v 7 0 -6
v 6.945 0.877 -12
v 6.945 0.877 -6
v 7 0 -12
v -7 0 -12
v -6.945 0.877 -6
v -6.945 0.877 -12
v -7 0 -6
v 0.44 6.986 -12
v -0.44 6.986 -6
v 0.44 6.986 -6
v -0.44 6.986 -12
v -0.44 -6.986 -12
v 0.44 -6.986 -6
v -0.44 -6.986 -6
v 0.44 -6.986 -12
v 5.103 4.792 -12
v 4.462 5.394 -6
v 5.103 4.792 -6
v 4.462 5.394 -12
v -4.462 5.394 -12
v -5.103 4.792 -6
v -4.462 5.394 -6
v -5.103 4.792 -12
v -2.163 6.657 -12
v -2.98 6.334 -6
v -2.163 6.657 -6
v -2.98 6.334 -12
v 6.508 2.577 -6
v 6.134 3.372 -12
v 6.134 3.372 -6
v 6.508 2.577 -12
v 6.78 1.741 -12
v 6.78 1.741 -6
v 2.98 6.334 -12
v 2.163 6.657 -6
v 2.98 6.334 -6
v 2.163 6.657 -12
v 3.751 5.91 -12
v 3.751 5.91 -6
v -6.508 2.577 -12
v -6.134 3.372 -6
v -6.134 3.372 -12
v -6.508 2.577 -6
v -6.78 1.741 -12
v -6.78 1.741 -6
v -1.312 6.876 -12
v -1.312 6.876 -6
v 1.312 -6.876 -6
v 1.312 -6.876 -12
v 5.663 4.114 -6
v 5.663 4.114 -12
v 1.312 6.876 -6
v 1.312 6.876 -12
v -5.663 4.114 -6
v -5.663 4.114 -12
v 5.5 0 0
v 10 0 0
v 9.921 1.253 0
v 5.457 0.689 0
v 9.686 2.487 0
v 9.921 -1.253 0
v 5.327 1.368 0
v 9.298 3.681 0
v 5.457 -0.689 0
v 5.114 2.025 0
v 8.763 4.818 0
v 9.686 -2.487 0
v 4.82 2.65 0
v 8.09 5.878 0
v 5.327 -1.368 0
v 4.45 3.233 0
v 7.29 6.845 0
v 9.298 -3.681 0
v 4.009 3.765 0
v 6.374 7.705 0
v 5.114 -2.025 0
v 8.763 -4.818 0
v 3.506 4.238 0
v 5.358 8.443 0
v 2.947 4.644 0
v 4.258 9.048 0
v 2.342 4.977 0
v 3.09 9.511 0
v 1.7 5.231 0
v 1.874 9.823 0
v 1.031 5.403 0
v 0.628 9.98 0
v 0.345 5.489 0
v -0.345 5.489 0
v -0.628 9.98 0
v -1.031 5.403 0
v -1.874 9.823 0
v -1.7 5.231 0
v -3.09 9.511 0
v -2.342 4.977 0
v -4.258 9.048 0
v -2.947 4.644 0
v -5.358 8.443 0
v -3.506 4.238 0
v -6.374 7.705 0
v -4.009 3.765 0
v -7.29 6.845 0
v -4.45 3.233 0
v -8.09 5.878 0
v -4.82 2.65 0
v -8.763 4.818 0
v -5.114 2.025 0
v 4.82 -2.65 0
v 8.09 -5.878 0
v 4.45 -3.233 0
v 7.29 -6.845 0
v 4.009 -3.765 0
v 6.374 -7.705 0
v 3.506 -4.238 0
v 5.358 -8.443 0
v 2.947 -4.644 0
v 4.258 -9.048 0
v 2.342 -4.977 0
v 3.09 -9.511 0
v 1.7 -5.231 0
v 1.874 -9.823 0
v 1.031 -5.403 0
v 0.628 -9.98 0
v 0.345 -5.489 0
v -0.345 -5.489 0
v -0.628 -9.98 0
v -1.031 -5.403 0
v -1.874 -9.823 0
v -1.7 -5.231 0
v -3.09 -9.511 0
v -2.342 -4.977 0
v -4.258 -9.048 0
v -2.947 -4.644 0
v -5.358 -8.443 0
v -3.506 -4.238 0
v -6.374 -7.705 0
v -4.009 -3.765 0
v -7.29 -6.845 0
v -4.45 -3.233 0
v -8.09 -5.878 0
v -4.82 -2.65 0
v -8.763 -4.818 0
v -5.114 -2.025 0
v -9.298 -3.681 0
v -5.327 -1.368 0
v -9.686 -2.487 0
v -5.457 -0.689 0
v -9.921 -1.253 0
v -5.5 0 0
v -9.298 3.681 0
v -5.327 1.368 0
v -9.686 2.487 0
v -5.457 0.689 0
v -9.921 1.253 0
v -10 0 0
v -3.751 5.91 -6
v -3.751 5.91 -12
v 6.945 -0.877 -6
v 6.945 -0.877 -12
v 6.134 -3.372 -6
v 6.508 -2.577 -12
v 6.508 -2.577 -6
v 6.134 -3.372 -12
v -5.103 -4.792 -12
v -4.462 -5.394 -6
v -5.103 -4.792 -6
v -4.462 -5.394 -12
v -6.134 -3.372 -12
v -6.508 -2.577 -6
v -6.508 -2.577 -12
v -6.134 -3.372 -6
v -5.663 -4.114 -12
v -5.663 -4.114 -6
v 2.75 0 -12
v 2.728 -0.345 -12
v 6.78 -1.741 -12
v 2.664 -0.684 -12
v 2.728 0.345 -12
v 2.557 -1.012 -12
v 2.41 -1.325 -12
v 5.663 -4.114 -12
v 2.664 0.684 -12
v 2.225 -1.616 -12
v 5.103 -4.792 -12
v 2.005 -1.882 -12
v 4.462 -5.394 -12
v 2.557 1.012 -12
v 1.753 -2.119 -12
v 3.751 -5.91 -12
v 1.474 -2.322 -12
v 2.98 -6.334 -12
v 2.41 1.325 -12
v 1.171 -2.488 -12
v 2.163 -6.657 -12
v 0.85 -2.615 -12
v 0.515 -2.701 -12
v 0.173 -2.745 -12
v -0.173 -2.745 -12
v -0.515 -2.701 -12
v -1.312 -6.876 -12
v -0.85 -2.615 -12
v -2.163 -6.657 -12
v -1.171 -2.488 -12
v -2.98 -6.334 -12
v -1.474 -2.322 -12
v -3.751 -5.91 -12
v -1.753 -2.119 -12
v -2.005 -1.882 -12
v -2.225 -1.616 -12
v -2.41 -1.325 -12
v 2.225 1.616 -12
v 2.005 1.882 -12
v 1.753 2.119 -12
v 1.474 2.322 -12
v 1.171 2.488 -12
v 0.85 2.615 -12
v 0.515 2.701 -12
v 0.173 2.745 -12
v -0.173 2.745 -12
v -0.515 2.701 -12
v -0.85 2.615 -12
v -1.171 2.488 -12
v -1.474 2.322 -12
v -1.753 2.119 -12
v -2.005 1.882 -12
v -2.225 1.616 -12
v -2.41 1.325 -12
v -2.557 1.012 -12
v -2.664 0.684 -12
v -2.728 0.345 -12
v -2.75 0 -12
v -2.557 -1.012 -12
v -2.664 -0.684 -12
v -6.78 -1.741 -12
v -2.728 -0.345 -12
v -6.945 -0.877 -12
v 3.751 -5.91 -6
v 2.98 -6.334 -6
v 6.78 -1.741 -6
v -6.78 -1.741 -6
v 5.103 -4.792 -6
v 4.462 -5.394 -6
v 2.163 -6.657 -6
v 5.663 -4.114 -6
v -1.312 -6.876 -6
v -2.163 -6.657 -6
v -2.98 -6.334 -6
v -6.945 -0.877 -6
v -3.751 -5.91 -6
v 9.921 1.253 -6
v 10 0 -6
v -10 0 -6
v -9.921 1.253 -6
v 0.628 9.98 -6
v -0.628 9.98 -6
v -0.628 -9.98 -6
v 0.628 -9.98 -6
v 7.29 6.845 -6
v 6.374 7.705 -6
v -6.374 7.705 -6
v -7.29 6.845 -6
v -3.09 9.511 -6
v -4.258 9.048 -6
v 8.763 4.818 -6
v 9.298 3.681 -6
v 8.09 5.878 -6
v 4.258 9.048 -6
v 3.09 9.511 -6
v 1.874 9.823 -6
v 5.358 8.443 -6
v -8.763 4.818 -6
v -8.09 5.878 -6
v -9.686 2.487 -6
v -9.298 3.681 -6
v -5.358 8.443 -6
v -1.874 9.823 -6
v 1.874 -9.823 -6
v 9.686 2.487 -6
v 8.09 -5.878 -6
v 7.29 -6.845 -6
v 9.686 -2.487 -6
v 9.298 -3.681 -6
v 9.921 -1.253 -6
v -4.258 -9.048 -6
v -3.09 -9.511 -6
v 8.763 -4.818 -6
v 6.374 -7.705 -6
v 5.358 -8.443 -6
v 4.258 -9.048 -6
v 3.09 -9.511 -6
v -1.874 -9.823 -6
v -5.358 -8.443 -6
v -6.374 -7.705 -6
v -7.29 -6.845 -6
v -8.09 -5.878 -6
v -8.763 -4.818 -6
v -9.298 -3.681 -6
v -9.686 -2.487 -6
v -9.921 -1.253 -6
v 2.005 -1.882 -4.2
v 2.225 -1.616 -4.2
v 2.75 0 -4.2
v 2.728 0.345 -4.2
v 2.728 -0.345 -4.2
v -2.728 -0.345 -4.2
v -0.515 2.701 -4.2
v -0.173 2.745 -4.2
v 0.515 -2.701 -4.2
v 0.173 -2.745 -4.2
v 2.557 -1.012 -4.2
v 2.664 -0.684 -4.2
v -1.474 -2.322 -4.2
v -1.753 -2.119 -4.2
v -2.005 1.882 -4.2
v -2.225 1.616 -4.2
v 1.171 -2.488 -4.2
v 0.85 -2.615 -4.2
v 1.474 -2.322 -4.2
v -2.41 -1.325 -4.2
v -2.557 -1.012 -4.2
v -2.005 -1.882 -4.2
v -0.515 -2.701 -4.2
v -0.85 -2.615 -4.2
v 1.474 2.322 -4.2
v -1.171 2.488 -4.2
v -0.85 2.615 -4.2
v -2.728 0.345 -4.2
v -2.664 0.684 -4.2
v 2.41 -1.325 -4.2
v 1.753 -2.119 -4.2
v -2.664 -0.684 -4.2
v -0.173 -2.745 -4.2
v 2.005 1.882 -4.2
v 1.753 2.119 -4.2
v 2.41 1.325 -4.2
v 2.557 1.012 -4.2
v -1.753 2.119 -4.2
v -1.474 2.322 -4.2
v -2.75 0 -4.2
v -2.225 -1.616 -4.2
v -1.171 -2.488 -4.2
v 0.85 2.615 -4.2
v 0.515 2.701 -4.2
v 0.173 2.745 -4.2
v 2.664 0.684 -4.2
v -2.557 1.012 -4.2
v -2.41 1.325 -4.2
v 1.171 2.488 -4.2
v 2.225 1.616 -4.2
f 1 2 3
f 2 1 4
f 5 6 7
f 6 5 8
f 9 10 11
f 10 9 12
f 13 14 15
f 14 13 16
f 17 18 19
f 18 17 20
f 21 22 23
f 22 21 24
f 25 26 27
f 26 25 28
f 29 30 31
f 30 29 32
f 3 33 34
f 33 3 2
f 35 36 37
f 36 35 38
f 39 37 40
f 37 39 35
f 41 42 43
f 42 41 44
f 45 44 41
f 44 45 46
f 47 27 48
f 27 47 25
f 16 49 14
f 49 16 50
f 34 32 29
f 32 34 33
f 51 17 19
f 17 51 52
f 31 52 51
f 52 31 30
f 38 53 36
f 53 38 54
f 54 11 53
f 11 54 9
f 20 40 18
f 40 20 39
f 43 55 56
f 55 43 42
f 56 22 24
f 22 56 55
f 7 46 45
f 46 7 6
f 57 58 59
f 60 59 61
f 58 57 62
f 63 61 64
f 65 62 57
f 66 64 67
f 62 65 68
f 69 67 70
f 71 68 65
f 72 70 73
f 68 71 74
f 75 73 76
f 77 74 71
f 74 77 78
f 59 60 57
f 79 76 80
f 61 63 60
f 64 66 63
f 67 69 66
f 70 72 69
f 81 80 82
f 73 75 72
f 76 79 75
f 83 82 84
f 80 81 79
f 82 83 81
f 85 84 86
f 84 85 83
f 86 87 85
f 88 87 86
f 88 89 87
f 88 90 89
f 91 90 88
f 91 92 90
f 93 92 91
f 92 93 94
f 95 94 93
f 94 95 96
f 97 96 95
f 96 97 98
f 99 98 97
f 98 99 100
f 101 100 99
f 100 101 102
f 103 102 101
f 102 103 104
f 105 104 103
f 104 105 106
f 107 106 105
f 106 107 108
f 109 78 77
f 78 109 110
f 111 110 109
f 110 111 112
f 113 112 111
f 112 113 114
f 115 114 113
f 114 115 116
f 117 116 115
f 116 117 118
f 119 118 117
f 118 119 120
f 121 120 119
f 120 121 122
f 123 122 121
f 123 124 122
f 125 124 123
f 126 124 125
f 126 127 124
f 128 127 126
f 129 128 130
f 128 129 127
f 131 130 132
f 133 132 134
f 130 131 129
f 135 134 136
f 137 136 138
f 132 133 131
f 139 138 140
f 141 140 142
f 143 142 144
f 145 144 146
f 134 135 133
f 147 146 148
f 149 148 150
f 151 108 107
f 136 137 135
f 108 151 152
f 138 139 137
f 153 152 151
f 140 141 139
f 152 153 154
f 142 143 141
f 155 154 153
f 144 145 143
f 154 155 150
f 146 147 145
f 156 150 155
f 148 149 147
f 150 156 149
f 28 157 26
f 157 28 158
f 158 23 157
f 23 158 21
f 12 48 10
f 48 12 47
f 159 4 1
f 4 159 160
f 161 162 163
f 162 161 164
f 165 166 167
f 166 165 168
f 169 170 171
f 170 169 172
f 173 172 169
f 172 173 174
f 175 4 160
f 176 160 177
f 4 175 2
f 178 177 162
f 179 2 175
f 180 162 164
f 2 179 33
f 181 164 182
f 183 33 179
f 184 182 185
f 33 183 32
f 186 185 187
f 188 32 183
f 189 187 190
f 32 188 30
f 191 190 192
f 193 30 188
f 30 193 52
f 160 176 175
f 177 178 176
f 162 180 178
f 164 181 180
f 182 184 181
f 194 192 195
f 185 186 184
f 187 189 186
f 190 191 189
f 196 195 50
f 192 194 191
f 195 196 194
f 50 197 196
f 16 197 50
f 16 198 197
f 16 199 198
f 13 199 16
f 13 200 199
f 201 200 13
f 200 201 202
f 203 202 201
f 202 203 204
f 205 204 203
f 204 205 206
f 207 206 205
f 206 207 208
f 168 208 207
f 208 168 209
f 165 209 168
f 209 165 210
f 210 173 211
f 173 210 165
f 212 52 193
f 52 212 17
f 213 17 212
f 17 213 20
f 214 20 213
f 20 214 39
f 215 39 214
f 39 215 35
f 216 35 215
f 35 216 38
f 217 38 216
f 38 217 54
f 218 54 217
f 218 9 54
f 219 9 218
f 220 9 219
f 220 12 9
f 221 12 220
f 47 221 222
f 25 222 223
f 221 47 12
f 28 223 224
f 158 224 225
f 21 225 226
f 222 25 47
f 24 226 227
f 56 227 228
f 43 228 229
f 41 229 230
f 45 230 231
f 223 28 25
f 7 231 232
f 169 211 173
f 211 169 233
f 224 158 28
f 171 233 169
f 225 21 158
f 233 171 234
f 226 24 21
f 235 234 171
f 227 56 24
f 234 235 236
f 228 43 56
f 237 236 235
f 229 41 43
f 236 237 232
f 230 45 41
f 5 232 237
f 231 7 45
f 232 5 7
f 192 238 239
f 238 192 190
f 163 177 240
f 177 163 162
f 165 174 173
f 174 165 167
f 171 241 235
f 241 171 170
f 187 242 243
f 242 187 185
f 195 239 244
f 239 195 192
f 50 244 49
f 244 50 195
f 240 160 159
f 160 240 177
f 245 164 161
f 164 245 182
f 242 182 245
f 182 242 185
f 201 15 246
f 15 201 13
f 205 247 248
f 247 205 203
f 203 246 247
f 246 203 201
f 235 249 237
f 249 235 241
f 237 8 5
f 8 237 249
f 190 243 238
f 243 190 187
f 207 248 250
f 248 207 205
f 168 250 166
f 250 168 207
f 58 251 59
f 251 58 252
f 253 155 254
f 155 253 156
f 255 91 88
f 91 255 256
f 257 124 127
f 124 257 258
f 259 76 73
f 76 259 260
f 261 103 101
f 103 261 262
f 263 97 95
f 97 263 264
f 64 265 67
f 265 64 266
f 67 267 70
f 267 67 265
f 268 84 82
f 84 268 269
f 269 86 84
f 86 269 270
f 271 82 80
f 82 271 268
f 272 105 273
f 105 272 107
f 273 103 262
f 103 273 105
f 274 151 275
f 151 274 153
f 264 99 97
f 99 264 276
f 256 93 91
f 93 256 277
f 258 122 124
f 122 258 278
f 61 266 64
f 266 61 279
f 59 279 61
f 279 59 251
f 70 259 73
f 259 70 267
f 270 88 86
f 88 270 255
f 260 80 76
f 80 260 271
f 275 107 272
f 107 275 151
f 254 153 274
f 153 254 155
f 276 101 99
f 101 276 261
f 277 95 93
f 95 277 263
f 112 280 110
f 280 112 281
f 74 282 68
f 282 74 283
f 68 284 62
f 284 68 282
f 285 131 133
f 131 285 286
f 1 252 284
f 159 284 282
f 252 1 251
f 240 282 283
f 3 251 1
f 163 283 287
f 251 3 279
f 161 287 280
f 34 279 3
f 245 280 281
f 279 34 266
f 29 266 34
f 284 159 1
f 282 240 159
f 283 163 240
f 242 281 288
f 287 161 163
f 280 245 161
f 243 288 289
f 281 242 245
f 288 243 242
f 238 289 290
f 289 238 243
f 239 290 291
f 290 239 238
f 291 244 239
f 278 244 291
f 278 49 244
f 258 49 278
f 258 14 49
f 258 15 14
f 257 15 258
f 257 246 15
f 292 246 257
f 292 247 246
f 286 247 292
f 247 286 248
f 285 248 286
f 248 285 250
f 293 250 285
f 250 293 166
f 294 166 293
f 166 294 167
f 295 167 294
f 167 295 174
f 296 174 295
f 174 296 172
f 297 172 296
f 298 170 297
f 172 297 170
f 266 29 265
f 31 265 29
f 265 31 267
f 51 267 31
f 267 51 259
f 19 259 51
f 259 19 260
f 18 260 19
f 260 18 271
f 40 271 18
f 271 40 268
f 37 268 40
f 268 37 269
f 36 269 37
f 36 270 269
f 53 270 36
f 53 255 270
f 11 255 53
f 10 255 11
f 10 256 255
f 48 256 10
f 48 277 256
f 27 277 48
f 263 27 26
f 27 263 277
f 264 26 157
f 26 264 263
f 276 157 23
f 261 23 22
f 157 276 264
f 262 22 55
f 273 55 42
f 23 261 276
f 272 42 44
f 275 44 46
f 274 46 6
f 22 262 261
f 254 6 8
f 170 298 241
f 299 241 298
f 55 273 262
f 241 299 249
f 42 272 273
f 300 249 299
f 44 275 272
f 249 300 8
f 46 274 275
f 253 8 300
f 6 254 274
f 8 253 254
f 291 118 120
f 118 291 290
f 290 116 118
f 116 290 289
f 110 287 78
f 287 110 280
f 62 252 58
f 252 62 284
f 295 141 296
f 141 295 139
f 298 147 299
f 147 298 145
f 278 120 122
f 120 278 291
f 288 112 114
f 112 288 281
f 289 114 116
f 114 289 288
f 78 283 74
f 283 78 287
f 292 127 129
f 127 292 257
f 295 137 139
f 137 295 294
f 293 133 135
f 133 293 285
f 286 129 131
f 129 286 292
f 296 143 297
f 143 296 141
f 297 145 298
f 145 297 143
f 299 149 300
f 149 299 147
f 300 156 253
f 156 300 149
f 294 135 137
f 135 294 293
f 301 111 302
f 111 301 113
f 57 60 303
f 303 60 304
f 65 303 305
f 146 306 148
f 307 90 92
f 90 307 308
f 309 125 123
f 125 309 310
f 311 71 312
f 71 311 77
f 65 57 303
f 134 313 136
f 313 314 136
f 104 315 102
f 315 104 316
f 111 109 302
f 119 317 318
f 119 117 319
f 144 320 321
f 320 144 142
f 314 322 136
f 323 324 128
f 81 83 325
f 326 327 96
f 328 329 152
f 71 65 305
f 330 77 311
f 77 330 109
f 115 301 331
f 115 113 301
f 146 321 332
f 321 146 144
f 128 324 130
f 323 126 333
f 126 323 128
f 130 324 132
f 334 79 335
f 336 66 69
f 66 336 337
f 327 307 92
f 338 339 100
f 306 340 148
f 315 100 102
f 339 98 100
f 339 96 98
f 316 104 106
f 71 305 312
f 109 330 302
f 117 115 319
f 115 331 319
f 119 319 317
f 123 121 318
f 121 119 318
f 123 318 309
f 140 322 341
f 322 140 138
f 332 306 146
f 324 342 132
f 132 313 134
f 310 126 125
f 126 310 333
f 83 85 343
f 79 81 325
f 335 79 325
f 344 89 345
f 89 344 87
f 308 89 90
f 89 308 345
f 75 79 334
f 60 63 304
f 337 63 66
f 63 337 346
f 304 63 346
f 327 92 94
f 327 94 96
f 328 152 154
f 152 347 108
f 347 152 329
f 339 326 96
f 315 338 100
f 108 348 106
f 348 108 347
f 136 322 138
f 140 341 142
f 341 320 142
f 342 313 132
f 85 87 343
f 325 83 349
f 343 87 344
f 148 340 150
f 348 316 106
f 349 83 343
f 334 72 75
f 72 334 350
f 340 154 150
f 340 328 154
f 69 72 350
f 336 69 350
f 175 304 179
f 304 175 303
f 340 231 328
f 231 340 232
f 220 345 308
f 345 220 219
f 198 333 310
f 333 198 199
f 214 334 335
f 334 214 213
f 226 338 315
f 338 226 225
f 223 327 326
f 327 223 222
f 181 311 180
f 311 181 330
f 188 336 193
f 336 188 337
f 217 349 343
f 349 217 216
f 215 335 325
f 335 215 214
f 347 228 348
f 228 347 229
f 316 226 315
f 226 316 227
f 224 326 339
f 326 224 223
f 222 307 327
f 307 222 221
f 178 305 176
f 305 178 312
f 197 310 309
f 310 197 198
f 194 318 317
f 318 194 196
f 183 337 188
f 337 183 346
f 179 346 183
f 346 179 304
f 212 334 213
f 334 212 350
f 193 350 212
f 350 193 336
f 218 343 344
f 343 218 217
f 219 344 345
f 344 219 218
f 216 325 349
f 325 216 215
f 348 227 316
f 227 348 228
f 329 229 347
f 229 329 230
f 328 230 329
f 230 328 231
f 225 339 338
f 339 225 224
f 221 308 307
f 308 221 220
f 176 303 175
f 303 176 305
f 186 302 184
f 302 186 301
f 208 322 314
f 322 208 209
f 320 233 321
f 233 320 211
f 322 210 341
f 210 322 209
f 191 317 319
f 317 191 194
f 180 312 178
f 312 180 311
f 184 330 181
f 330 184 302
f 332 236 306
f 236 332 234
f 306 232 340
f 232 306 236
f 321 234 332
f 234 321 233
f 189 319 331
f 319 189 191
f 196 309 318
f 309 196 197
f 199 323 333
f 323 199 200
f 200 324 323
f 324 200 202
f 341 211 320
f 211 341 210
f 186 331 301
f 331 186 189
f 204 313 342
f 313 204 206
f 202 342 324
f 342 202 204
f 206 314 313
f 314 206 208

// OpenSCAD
$fn = 50;


difference() {
	union() {
		translate(v = [0, 0, -12.0000000000]) {
			cylinder(h = 12, r = 7.0000000000);
		}
		translate(v = [0, 0, -6.0000000000]) {
			cylinder(h = 6, r = 10.0000000000);
		}
	}
	union() {
		translate(v = [0, 0, 0]) {
			rotate(a = [0, 0, 0]) {
				difference() {
					union() {
						#translate(v = [0, 0, -12.0000000000]) {
							cylinder(h = 12, r = 2.2500000000);
						}
						#translate(v = [0, 0, -4.2000000000]) {
							cylinder(h = 4.2000000000, r = 7.0000000000, r1 = 2.7500000000, r2 = 5.5000000000);
						}
						#translate(v = [0, 0, -12.0000000000]) {
							cylinder(h = 12, r = 2.7500000000);
						}
						#translate(v = [0, 0, -12.0000000000]) {
							cylinder(h = 12, r = 2.2500000000);
						}
					}
					union();
				}
			}
		}
	}
}
